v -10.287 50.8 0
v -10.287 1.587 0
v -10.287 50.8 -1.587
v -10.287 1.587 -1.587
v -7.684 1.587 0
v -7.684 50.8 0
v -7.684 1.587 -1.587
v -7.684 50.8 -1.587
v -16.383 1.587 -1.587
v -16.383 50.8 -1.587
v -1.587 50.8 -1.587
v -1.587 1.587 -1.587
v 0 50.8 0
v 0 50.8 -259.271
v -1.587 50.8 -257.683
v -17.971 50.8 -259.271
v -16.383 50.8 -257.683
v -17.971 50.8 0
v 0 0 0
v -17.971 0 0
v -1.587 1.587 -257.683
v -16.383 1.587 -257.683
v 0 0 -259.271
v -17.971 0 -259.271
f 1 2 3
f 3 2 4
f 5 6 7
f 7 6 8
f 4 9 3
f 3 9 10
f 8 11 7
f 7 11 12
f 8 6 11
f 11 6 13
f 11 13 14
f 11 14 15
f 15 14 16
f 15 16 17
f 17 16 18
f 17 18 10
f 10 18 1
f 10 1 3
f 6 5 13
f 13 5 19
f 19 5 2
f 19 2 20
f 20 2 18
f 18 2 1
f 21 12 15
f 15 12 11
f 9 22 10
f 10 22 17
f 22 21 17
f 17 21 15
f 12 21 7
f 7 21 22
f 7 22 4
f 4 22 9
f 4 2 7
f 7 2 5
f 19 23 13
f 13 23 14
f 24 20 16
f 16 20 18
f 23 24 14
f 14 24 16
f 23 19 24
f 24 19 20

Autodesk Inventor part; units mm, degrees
ref_plane "YZ Plane" through (0, 0, 0) normal (1, 0, 0) x (0, 1, 0)
ref_plane "XZ Plane" through (0, 0, 0) normal (0, 1, 0) x (-1, 0, 0)
ref_plane "XY Plane" through (0, 0, 0) normal (0, 0, 1) x (1, 0, 0)
sketch "Sketch1" plane through (0, 0, 0) normal (0, 1, 0) x (-1, 0, 0)
  line L0 (0, 0) -> (17.9705, 0)
  line L1 (17.9705, 0) -> (17.9705, -259.2705)
  line L2 (17.9705, -259.2705) -> (0, -259.2705)
  line L3 (0, -259.2705) -> (0, 0)
  dimension "d0" = 17.9705
  dimension "d1" = 259.2705
extrude "Extrusion1" add sketch "Sketch1" along normal blind 50.8
shell "Shell1" thickness 1.5875 removed faces 1 at (-5.9902, 50.8, -172.847)
sketch "Sketch2" plane through (-17.9705, 0, 0) normal (0, 0, 1) x (1, 0, 0)
  line L0 (17.9705, 50.8) -> (0, 50.8) projected
  line L1 (1.5875, 1.5875) -> (16.383, 1.5875) projected
  line L2 (1.5875, 50.8) -> (16.383, 50.8)
  line L3 (16.383, 50.8) -> (16.383, 1.5875)
  line L4 (16.383, 1.5875) -> (1.5875, 1.5875)
  line L5 (1.5875, 1.5875) -> (1.5875, 50.8)
  line L6 (1.5875, 1.5875) -> (1.5875, 50.8) projected
  line L7 (7.6835, 50.8) -> (7.6835, 1.5875)
  line L8 (10.287, 50.8) -> (10.287, 1.5875)
  point P0 (17.9705, 0)
  point P1 (10.287, 1.5875)
  point P2 (7.6835, 1.5875)
  dimension "d5" = 0
  dimension "d6" = 6.096
  dimension "d7" = 6.096
extrude "Extrusion2" cut sketch "Sketch2" against normal blind 1.5875 contours L8 L1 L7 L0
properties part number "Wall Lift Test Case"
